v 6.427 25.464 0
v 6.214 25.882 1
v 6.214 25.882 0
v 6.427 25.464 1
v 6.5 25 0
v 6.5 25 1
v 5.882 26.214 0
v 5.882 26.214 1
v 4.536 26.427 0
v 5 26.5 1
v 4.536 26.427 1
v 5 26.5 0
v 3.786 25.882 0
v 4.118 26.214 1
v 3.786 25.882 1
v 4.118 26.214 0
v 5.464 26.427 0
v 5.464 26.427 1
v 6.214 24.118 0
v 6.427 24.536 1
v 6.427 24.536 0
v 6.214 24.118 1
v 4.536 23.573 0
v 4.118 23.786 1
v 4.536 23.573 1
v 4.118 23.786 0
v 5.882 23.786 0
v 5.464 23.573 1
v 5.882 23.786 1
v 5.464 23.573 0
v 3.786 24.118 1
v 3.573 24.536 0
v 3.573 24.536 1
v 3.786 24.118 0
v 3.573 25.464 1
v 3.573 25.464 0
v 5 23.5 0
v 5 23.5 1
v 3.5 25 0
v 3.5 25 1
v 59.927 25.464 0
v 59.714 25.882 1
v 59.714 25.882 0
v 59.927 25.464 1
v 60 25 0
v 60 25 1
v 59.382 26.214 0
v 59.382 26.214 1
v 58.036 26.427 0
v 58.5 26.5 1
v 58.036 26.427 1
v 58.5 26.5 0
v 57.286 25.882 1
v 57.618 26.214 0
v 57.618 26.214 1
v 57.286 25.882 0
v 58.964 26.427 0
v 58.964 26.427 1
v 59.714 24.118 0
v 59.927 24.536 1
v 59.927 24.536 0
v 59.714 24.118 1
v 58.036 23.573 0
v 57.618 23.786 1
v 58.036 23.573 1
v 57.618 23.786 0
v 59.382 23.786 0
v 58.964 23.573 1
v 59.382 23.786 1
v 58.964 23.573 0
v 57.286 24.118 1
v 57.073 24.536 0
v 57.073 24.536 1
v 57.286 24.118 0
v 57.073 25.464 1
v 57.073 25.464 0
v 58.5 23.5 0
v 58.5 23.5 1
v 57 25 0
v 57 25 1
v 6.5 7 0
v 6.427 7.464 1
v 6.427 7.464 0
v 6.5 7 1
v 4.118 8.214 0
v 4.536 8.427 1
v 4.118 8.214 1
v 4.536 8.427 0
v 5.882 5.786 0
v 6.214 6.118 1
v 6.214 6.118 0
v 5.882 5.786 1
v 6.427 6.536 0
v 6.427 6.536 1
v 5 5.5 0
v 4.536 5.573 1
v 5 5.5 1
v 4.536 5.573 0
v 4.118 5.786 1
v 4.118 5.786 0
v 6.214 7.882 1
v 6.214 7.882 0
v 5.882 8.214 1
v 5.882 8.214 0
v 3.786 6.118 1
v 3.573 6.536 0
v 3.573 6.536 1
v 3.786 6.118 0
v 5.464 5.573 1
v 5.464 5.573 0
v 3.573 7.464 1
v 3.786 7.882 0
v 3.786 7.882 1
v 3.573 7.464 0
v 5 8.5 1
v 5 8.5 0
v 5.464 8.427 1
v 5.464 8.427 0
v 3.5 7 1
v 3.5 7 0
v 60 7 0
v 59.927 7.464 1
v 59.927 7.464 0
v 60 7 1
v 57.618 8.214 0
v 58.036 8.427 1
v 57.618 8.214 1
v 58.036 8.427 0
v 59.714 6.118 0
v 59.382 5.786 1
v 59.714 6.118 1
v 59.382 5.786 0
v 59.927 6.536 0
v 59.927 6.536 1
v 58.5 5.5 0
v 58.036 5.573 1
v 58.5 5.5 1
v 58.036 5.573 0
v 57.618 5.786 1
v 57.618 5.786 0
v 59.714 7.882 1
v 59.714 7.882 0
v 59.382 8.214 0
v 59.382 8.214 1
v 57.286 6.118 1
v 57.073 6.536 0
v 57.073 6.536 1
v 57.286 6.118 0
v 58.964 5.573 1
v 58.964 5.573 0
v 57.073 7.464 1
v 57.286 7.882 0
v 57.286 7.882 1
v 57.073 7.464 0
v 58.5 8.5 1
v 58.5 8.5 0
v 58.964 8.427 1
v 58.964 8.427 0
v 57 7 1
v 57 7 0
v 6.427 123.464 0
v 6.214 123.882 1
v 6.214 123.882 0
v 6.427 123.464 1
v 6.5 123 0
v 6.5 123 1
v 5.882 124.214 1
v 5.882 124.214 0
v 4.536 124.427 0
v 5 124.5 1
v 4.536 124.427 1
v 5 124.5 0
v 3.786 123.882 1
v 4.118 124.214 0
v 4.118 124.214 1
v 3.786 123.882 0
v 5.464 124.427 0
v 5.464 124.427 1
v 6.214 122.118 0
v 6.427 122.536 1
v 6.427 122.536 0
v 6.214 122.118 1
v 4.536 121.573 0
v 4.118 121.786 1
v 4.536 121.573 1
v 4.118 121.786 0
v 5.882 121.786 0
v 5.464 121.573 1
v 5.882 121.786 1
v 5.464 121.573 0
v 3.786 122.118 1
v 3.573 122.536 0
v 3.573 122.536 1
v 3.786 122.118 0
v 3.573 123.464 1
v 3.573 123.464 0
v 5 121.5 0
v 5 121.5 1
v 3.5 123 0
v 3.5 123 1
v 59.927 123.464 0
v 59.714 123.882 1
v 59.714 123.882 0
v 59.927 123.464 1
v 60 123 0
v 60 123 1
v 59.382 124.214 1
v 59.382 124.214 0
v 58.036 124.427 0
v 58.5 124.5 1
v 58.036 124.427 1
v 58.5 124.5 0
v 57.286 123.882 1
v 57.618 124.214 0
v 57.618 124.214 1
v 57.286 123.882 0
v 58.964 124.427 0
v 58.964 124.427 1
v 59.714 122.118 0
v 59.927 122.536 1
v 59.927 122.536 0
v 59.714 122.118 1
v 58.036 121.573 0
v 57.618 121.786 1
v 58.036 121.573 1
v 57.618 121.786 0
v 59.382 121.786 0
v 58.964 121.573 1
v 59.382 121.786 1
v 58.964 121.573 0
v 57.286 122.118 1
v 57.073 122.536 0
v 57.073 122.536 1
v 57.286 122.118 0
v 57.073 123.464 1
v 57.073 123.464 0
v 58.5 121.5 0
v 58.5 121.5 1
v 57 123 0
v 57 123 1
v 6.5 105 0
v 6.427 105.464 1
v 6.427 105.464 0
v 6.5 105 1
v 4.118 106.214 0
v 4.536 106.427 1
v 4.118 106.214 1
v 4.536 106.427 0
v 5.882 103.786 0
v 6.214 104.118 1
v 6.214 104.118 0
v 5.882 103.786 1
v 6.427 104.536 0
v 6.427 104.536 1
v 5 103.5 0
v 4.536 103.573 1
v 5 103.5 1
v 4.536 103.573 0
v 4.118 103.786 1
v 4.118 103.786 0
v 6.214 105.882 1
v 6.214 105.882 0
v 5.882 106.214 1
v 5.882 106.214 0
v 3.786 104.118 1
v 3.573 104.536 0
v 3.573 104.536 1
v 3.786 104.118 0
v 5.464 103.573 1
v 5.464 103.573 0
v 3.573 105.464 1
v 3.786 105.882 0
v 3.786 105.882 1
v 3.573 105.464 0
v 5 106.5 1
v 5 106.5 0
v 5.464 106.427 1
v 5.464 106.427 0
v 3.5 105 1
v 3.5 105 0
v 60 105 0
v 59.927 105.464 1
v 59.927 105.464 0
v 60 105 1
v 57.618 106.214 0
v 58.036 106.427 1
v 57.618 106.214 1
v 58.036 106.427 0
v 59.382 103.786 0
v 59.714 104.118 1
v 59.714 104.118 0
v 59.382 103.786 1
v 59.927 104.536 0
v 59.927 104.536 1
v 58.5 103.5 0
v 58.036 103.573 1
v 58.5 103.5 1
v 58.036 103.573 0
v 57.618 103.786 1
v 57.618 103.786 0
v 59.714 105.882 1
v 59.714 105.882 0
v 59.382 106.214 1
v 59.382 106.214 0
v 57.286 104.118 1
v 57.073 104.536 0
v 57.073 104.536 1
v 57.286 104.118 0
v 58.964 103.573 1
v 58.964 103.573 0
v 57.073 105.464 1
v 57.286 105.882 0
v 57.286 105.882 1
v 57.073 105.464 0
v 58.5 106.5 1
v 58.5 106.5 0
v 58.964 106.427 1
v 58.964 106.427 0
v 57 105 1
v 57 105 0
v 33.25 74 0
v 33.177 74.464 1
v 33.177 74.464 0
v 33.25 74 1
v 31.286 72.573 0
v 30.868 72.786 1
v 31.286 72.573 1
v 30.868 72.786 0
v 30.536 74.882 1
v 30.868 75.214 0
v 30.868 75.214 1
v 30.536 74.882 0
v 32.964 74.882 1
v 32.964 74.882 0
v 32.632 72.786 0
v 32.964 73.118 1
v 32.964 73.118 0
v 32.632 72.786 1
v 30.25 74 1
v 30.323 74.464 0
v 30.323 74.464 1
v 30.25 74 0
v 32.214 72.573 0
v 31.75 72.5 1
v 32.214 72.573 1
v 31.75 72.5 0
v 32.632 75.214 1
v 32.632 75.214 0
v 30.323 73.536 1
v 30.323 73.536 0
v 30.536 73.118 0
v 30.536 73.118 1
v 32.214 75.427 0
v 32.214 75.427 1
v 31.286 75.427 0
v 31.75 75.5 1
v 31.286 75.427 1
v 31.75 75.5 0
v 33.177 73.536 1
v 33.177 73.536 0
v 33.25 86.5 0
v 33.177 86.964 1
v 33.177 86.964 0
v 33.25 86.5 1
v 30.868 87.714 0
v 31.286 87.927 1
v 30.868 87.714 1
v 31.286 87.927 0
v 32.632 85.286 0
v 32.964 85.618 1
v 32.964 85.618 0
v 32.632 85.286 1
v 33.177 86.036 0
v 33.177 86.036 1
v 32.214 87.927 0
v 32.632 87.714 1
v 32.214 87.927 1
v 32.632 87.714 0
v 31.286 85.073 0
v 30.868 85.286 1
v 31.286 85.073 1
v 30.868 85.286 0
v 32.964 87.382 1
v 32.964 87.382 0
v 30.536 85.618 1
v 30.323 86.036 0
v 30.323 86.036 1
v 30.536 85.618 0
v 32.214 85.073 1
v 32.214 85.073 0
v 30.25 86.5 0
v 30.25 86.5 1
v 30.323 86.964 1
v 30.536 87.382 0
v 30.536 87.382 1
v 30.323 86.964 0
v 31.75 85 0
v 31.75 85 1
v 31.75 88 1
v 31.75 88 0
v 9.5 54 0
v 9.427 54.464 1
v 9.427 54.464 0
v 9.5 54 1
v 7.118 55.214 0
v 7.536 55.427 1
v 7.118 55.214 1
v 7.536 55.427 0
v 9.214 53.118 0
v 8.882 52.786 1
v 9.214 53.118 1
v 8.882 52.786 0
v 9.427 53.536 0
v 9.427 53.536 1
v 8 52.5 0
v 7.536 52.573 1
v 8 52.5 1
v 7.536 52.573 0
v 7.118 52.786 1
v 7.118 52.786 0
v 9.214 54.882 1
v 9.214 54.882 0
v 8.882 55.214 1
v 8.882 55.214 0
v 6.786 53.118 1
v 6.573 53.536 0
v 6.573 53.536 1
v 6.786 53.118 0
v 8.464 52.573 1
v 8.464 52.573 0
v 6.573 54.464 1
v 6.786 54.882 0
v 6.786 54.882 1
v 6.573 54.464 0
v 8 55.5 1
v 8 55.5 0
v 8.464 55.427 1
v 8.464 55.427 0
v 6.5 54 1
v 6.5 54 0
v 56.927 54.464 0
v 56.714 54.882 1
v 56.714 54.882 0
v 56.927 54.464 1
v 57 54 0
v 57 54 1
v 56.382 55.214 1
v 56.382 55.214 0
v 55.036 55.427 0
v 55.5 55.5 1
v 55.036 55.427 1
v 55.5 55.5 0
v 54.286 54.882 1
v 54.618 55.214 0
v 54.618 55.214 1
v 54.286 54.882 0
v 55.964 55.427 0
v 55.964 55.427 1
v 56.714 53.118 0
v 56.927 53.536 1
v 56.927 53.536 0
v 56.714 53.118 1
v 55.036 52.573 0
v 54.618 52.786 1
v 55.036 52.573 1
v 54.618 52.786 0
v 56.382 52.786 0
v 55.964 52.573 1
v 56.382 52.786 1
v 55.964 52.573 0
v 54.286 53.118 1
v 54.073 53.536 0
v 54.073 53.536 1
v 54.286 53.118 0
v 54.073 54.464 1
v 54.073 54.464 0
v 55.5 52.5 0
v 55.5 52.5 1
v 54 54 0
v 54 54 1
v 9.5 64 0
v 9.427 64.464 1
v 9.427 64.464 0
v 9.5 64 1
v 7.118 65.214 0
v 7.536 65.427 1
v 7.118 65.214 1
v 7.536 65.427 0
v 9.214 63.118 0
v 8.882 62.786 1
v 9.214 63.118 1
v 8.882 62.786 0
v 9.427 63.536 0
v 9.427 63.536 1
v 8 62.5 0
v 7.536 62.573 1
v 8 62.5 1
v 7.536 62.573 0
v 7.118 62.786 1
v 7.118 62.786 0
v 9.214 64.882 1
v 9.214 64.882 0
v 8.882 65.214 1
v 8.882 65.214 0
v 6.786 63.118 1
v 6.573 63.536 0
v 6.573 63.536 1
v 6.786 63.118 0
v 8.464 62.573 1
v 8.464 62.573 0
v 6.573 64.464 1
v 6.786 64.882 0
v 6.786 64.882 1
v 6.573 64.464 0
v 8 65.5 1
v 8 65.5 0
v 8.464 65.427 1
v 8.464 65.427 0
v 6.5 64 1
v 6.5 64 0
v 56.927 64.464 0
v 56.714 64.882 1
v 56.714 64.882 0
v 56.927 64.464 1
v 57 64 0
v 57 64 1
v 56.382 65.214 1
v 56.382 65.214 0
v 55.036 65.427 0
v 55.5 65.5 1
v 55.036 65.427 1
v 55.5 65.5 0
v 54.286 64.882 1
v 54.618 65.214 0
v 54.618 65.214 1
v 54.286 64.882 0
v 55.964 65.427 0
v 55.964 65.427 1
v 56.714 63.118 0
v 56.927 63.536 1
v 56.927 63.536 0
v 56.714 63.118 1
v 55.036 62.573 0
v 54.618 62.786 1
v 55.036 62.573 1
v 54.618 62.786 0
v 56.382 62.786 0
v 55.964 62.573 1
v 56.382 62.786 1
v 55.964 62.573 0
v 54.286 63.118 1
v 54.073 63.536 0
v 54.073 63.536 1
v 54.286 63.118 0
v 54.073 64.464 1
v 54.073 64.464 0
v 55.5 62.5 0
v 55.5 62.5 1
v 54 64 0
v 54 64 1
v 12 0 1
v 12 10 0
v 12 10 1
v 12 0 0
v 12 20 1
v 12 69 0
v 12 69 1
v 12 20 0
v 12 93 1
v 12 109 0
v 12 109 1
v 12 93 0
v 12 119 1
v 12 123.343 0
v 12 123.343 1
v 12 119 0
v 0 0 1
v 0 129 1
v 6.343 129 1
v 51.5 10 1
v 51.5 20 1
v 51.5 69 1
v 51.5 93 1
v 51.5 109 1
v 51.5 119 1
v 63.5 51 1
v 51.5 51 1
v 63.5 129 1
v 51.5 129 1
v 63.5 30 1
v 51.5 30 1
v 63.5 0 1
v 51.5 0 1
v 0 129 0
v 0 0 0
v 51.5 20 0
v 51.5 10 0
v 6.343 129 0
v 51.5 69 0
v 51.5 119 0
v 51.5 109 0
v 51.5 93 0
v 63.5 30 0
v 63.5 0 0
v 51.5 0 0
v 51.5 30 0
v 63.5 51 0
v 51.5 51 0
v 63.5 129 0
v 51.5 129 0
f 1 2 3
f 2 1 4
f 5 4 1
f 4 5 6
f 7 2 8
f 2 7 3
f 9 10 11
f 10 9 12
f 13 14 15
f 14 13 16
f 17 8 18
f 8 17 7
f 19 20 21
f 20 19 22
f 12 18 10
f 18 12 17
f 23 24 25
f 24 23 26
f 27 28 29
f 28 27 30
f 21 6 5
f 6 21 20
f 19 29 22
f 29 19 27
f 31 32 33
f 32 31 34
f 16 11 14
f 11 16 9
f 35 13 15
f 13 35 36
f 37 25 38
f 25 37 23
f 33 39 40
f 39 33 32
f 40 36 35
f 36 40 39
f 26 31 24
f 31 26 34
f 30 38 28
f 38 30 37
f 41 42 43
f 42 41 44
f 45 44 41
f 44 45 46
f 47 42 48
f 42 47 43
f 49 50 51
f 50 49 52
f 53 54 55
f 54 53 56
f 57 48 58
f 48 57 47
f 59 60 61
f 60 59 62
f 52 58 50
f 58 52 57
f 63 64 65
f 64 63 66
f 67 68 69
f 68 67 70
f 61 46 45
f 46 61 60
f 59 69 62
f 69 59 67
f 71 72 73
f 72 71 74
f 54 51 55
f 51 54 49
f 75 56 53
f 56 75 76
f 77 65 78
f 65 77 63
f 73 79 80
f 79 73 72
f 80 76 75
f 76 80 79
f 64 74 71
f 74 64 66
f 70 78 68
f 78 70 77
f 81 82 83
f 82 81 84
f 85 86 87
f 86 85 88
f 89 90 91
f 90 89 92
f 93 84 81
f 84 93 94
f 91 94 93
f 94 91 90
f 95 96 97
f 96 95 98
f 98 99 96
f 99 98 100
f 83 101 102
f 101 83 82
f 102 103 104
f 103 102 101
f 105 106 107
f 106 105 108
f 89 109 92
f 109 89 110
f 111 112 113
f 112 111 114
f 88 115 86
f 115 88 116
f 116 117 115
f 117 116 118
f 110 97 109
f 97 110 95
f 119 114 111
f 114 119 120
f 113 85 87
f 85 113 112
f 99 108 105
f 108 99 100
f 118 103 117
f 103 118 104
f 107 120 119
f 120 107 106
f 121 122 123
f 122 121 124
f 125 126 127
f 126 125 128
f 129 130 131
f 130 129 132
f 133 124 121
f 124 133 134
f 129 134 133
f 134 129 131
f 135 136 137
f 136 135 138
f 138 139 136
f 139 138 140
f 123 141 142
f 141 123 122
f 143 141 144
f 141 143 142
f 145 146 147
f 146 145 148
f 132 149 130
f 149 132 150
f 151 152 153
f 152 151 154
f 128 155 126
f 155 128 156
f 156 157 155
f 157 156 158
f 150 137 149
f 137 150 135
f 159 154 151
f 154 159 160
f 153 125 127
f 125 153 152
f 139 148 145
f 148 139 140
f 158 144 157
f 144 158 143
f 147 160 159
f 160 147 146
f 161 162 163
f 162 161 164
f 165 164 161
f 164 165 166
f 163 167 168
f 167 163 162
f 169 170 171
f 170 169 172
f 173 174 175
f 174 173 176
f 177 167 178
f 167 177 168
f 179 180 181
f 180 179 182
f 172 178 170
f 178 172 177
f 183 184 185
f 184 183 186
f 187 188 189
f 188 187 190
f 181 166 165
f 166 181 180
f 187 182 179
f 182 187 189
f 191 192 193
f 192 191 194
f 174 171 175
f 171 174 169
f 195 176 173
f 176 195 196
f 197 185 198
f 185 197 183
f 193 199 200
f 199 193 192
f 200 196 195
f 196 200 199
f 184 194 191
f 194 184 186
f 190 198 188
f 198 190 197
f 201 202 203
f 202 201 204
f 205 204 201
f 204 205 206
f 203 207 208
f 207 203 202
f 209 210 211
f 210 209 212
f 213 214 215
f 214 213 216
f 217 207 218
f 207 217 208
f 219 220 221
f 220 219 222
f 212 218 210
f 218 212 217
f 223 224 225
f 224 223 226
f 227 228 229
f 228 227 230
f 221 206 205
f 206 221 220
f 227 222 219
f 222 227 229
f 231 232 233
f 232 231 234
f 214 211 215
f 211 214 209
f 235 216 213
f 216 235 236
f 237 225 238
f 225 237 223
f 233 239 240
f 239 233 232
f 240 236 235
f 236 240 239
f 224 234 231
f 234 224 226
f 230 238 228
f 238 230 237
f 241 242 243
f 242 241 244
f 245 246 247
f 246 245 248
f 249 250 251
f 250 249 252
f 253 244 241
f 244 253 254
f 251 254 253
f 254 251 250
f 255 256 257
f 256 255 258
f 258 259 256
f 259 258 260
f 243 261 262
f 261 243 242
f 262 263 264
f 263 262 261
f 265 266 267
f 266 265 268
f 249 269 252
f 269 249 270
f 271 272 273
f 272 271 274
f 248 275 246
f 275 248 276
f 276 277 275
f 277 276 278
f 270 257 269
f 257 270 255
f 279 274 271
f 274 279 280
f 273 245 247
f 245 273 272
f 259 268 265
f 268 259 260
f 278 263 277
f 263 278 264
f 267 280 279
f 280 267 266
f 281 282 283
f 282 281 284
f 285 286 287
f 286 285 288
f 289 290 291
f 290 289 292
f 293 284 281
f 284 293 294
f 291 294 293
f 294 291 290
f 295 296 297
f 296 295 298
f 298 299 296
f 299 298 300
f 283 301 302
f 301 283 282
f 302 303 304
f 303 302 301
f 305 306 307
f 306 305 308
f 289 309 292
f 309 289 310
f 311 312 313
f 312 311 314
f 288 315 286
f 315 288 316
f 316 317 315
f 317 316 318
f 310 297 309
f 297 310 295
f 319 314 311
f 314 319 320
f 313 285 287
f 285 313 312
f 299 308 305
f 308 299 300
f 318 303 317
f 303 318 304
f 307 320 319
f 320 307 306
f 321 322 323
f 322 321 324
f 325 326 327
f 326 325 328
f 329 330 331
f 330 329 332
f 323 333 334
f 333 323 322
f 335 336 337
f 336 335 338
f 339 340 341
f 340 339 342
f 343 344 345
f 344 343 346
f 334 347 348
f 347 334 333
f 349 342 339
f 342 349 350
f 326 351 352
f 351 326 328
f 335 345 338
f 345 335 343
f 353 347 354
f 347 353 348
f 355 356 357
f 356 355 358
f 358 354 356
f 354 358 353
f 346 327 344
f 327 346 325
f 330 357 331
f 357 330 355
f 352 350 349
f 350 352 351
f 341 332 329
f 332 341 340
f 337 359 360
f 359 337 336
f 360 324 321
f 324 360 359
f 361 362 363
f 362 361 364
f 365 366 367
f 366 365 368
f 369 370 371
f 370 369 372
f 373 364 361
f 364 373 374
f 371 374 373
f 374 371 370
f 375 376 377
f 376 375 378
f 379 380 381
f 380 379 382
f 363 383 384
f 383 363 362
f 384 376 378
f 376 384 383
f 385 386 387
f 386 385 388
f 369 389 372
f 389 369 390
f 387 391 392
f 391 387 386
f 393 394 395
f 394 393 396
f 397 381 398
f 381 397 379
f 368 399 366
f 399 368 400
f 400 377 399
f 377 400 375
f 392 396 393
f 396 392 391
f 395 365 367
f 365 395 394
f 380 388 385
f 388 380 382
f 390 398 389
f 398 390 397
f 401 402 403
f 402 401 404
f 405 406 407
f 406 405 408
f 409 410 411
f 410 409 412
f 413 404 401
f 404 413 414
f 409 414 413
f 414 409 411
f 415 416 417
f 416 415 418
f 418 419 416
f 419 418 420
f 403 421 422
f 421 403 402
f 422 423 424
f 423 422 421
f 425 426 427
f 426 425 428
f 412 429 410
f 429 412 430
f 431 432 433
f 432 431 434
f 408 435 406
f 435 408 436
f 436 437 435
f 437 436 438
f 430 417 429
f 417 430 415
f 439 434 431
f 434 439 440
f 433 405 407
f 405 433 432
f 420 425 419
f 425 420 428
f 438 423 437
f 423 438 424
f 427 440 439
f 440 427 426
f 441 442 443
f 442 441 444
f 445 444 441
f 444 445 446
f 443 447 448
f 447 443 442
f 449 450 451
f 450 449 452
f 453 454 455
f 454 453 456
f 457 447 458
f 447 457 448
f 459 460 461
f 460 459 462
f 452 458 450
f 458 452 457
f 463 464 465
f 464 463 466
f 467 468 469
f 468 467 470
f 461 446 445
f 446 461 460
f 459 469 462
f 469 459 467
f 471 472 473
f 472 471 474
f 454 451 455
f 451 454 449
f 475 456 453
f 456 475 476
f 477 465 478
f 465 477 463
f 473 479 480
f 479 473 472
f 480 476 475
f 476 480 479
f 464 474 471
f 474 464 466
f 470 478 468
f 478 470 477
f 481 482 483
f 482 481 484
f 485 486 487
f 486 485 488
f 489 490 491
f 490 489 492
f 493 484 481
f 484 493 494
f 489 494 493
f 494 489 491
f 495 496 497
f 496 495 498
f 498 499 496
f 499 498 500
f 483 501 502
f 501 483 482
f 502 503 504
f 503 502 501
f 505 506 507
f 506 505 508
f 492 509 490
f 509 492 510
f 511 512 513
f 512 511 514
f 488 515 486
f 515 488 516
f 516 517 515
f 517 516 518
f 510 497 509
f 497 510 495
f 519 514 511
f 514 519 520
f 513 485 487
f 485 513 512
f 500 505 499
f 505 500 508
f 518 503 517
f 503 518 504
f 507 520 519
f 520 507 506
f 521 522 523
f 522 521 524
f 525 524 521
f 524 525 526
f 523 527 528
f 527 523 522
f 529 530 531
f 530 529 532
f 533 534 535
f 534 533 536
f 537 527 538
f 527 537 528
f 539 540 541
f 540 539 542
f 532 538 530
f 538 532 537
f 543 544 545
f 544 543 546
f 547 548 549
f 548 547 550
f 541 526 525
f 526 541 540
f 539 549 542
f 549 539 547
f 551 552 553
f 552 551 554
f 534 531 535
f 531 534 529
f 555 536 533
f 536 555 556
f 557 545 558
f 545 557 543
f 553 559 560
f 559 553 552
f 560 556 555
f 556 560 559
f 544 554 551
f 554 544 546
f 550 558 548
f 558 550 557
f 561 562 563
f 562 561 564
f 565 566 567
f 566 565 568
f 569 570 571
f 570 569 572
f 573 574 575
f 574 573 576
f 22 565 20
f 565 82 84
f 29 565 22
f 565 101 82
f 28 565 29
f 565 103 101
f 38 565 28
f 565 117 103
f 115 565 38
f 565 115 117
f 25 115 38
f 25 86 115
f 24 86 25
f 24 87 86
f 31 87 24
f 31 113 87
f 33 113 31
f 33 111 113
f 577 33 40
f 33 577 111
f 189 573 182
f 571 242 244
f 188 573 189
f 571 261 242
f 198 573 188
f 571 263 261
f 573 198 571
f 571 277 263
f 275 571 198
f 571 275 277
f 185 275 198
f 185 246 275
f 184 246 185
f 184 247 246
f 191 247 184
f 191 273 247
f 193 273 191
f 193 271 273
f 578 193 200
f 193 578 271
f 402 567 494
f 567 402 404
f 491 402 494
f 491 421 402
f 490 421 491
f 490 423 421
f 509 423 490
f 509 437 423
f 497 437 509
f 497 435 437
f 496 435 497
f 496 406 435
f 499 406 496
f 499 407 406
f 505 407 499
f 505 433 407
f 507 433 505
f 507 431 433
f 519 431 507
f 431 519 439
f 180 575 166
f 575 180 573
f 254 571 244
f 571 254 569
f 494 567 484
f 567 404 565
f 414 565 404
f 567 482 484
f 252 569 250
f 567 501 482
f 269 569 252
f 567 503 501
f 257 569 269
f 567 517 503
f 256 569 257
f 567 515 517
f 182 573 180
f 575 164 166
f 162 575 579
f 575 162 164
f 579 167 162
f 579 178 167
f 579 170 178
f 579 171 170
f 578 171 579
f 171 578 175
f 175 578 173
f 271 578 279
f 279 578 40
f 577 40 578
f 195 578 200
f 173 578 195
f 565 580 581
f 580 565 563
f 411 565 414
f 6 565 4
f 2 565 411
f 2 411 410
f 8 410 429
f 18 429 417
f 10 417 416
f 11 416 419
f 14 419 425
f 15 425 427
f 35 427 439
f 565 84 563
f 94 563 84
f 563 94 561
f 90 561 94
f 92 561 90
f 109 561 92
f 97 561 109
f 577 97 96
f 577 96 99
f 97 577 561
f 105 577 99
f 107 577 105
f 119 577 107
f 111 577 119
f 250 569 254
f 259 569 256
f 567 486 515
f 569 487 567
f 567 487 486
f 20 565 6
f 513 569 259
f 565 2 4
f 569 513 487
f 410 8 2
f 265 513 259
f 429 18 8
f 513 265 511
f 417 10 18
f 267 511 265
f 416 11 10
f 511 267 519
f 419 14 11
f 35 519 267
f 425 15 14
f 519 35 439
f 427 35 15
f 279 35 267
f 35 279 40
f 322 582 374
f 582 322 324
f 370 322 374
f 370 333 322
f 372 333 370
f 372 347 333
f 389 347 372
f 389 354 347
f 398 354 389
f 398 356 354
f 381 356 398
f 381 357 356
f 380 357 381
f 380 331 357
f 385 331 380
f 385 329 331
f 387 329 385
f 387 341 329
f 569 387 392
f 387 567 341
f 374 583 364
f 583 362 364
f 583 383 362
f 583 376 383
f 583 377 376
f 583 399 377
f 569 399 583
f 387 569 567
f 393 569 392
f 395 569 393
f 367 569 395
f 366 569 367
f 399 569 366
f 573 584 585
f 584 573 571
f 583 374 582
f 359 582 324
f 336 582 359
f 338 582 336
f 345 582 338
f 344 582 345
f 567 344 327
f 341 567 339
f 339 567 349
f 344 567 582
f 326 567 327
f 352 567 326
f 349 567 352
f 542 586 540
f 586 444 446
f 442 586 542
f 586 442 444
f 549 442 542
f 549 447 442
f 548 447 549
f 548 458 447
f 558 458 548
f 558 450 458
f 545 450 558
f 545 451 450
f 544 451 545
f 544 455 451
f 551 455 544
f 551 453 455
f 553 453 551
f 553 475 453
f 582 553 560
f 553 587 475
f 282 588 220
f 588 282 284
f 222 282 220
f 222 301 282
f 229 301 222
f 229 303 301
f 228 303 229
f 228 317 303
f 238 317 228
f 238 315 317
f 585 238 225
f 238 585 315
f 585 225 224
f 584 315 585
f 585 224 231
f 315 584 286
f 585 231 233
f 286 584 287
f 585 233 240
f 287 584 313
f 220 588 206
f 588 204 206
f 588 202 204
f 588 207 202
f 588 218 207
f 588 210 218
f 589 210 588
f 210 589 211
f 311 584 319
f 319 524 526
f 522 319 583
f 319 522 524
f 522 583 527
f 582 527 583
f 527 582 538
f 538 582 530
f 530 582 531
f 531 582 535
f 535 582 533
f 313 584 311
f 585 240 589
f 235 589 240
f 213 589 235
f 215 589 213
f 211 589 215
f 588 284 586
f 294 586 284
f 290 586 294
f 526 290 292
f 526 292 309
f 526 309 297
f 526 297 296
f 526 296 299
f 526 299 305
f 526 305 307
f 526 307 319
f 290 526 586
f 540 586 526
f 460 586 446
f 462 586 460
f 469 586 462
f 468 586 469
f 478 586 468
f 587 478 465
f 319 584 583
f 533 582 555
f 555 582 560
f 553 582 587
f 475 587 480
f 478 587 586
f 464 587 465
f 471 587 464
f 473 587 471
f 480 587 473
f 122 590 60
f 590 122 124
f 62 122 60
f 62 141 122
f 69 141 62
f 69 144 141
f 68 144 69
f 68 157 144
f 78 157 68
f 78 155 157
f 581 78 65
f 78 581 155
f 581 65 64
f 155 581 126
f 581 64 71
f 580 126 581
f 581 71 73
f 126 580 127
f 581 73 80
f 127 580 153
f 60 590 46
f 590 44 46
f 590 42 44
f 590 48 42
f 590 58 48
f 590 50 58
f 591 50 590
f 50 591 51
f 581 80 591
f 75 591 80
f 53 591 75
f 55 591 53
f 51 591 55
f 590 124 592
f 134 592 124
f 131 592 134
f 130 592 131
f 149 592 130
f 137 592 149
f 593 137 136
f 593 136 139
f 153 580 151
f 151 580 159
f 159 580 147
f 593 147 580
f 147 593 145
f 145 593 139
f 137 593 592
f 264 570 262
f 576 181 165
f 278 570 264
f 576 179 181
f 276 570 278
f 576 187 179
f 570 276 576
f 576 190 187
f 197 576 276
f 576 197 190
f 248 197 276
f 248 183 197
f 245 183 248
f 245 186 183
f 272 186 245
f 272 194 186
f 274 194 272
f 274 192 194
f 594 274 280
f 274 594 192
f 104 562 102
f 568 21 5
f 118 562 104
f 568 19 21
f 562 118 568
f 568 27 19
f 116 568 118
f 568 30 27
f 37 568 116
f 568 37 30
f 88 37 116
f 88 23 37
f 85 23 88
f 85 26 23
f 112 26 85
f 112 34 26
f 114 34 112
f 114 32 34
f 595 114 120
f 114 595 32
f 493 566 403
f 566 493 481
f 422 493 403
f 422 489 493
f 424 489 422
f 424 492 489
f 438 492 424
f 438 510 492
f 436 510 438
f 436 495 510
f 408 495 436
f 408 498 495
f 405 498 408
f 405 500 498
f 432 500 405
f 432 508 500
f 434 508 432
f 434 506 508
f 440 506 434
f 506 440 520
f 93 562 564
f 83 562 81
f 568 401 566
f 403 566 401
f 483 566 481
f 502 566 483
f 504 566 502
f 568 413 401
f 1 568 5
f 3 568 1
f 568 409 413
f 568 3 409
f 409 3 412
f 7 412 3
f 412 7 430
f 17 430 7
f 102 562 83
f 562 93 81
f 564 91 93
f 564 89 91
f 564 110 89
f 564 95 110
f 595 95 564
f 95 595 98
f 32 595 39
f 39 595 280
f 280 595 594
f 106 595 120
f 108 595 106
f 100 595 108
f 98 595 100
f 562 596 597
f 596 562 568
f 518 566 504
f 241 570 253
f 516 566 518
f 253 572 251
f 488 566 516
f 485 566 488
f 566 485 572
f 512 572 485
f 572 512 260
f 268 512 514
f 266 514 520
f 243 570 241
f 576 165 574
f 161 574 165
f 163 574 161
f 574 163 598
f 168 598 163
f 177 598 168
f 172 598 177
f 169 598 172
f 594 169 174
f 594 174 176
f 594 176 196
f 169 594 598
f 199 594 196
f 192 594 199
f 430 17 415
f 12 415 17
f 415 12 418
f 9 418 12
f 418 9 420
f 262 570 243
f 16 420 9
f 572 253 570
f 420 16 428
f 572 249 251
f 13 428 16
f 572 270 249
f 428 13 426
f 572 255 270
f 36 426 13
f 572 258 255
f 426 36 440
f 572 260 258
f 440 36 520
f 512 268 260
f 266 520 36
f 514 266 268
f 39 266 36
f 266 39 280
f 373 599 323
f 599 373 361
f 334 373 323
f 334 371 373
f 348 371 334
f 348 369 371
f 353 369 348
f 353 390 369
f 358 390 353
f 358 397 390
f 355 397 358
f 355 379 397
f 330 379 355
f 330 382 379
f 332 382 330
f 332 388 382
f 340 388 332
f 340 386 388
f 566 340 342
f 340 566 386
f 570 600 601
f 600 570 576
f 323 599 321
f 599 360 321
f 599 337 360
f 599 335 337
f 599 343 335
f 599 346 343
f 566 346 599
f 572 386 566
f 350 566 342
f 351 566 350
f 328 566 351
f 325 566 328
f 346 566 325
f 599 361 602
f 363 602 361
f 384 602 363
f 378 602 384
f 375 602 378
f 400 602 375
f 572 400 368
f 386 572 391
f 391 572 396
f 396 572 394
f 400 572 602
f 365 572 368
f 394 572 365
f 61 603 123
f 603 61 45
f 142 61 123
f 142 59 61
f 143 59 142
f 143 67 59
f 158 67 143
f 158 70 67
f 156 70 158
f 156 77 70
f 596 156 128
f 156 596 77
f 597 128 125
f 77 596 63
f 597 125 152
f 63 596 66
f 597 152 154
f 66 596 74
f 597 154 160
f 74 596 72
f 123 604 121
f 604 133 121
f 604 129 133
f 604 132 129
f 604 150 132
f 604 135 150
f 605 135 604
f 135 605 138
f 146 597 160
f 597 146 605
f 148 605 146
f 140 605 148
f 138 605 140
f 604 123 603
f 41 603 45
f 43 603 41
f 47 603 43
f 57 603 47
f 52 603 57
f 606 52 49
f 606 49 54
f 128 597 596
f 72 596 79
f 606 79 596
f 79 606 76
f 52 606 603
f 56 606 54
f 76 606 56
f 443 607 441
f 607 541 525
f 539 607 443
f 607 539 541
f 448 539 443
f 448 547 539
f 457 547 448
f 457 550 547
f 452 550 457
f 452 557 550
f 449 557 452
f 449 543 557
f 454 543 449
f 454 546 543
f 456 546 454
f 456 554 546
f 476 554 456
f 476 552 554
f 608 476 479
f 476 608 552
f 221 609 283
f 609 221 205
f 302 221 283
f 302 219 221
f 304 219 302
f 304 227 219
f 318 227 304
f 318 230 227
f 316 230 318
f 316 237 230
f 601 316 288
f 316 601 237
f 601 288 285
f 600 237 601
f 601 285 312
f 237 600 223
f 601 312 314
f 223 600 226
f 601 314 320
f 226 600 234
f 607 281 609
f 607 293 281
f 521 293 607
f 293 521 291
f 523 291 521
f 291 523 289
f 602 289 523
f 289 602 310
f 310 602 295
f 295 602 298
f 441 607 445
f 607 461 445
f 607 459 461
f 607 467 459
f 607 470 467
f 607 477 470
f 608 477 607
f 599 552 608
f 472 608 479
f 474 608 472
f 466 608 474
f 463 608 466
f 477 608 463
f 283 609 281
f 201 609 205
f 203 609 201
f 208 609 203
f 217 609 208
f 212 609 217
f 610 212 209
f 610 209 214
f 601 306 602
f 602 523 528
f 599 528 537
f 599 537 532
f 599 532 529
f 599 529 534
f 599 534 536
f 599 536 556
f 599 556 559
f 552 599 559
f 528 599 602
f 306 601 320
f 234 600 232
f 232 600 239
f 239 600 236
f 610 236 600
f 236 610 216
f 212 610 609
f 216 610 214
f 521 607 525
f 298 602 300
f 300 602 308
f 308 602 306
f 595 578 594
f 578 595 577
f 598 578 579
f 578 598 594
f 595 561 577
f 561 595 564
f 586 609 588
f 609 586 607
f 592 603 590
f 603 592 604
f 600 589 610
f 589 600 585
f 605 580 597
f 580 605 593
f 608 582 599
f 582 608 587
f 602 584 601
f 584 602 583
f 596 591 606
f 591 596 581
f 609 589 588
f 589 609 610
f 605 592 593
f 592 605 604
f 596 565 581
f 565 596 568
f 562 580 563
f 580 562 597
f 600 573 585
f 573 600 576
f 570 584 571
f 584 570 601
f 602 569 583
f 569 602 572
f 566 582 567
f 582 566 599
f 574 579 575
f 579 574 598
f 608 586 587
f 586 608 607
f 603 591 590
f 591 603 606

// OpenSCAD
// v2 of hold bar

// all dimensions are in mm
bar1_width = 12;    // mm
bar1_length = 129;      // was 133
bar1_height = 1;        // final high like 5

board_inner_edge_to_edge = 63.5;
front_edge_to_front_edge = board_inner_edge_to_edge-bar1_width;

hole_r = 3/2;       // 3mm diameter

// middle cross bar
cross_bar3_offset = 69; // offset down
cross_bar3_width = 24;
first_bar3_hole_offset = 74;

module holes() {
    // holes
    union() {
        translate([5,7,5]) {
            cylinder(20, hole_r, hole_r, center=true, $fn=20);
        }
        translate([board_inner_edge_to_edge-5,7,5]) {
            cylinder(20, hole_r, hole_r, center=true, $fn=20);
        }
        translate([0,18,0]) {
            translate([5,7,5]) {
                cylinder(20, hole_r, hole_r, center=true, $fn=20);
            }
            translate([board_inner_edge_to_edge-5,7,5]) {
                cylinder(20, hole_r, hole_r, center=true, $fn=20);
            }
        }
    }
}
module secondary_holes() {
    union() {
        translate([8,54,5]) {
            cylinder(20, hole_r, hole_r, center=true, $fn=20);
        }
        translate([board_inner_edge_to_edge-8,54,5]) {
            cylinder(20, hole_r, hole_r, center=true, $fn=20);
        }
    }
}

difference() {
    union() {
        // front to back bars
        cube([bar1_width,bar1_length,bar1_height], center=false);

        translate([front_edge_to_front_edge, 0, 0]) {
            cube([bar1_width,bar1_length,bar1_height], center=false);
        }


        cross_bar1_offset = 10;
        cross_bar1_width = 10;

        cross_bar2_width = 10;
        cross_bar2_offset = (bar1_length-10)-cross_bar2_width;

        // cross bars
        translate([0,cross_bar1_offset,0]) {
         cube([board_inner_edge_to_edge, 10, bar1_height], center = false);
        }
        translate([0,cross_bar2_offset,0]) {
         cube([board_inner_edge_to_edge, cross_bar2_width, bar1_height], center = false);
        }

        // middle cross bar
        translate([0,cross_bar3_offset,0]) {
         cube([board_inner_edge_to_edge, cross_bar3_width, bar1_height], center = false);
        }
        

    }

    // remove holes and stuff
    union() {
        // holes on side posts
        holes();
        translate([0,80+18,0]) holes();
        // holes for sensors normally - just in case
        secondary_holes();
        translate([0,10,0]) secondary_holes();
        
        // remove corner for component
        translate([bar1_width,bar1_length,0]) rotate([0,0,45]) cube([8,8,bar1_height*4],center=true);        
        // holes on middle bar
        translate([board_inner_edge_to_edge/2,first_bar3_hole_offset,5]) {
            cylinder(20, hole_r, hole_r, center=true, $fn=20);
            translate([0,12.5,0]) {
                cylinder(20, hole_r, hole_r, center=true, $fn=20);
            }
        }
        
        // remove location for back driver
        // 30mm to 52mm
        translate([front_edge_to_front_edge-2,30,-2]) cube([21,21,bar1_height*4],center=false);
        

    }
}
